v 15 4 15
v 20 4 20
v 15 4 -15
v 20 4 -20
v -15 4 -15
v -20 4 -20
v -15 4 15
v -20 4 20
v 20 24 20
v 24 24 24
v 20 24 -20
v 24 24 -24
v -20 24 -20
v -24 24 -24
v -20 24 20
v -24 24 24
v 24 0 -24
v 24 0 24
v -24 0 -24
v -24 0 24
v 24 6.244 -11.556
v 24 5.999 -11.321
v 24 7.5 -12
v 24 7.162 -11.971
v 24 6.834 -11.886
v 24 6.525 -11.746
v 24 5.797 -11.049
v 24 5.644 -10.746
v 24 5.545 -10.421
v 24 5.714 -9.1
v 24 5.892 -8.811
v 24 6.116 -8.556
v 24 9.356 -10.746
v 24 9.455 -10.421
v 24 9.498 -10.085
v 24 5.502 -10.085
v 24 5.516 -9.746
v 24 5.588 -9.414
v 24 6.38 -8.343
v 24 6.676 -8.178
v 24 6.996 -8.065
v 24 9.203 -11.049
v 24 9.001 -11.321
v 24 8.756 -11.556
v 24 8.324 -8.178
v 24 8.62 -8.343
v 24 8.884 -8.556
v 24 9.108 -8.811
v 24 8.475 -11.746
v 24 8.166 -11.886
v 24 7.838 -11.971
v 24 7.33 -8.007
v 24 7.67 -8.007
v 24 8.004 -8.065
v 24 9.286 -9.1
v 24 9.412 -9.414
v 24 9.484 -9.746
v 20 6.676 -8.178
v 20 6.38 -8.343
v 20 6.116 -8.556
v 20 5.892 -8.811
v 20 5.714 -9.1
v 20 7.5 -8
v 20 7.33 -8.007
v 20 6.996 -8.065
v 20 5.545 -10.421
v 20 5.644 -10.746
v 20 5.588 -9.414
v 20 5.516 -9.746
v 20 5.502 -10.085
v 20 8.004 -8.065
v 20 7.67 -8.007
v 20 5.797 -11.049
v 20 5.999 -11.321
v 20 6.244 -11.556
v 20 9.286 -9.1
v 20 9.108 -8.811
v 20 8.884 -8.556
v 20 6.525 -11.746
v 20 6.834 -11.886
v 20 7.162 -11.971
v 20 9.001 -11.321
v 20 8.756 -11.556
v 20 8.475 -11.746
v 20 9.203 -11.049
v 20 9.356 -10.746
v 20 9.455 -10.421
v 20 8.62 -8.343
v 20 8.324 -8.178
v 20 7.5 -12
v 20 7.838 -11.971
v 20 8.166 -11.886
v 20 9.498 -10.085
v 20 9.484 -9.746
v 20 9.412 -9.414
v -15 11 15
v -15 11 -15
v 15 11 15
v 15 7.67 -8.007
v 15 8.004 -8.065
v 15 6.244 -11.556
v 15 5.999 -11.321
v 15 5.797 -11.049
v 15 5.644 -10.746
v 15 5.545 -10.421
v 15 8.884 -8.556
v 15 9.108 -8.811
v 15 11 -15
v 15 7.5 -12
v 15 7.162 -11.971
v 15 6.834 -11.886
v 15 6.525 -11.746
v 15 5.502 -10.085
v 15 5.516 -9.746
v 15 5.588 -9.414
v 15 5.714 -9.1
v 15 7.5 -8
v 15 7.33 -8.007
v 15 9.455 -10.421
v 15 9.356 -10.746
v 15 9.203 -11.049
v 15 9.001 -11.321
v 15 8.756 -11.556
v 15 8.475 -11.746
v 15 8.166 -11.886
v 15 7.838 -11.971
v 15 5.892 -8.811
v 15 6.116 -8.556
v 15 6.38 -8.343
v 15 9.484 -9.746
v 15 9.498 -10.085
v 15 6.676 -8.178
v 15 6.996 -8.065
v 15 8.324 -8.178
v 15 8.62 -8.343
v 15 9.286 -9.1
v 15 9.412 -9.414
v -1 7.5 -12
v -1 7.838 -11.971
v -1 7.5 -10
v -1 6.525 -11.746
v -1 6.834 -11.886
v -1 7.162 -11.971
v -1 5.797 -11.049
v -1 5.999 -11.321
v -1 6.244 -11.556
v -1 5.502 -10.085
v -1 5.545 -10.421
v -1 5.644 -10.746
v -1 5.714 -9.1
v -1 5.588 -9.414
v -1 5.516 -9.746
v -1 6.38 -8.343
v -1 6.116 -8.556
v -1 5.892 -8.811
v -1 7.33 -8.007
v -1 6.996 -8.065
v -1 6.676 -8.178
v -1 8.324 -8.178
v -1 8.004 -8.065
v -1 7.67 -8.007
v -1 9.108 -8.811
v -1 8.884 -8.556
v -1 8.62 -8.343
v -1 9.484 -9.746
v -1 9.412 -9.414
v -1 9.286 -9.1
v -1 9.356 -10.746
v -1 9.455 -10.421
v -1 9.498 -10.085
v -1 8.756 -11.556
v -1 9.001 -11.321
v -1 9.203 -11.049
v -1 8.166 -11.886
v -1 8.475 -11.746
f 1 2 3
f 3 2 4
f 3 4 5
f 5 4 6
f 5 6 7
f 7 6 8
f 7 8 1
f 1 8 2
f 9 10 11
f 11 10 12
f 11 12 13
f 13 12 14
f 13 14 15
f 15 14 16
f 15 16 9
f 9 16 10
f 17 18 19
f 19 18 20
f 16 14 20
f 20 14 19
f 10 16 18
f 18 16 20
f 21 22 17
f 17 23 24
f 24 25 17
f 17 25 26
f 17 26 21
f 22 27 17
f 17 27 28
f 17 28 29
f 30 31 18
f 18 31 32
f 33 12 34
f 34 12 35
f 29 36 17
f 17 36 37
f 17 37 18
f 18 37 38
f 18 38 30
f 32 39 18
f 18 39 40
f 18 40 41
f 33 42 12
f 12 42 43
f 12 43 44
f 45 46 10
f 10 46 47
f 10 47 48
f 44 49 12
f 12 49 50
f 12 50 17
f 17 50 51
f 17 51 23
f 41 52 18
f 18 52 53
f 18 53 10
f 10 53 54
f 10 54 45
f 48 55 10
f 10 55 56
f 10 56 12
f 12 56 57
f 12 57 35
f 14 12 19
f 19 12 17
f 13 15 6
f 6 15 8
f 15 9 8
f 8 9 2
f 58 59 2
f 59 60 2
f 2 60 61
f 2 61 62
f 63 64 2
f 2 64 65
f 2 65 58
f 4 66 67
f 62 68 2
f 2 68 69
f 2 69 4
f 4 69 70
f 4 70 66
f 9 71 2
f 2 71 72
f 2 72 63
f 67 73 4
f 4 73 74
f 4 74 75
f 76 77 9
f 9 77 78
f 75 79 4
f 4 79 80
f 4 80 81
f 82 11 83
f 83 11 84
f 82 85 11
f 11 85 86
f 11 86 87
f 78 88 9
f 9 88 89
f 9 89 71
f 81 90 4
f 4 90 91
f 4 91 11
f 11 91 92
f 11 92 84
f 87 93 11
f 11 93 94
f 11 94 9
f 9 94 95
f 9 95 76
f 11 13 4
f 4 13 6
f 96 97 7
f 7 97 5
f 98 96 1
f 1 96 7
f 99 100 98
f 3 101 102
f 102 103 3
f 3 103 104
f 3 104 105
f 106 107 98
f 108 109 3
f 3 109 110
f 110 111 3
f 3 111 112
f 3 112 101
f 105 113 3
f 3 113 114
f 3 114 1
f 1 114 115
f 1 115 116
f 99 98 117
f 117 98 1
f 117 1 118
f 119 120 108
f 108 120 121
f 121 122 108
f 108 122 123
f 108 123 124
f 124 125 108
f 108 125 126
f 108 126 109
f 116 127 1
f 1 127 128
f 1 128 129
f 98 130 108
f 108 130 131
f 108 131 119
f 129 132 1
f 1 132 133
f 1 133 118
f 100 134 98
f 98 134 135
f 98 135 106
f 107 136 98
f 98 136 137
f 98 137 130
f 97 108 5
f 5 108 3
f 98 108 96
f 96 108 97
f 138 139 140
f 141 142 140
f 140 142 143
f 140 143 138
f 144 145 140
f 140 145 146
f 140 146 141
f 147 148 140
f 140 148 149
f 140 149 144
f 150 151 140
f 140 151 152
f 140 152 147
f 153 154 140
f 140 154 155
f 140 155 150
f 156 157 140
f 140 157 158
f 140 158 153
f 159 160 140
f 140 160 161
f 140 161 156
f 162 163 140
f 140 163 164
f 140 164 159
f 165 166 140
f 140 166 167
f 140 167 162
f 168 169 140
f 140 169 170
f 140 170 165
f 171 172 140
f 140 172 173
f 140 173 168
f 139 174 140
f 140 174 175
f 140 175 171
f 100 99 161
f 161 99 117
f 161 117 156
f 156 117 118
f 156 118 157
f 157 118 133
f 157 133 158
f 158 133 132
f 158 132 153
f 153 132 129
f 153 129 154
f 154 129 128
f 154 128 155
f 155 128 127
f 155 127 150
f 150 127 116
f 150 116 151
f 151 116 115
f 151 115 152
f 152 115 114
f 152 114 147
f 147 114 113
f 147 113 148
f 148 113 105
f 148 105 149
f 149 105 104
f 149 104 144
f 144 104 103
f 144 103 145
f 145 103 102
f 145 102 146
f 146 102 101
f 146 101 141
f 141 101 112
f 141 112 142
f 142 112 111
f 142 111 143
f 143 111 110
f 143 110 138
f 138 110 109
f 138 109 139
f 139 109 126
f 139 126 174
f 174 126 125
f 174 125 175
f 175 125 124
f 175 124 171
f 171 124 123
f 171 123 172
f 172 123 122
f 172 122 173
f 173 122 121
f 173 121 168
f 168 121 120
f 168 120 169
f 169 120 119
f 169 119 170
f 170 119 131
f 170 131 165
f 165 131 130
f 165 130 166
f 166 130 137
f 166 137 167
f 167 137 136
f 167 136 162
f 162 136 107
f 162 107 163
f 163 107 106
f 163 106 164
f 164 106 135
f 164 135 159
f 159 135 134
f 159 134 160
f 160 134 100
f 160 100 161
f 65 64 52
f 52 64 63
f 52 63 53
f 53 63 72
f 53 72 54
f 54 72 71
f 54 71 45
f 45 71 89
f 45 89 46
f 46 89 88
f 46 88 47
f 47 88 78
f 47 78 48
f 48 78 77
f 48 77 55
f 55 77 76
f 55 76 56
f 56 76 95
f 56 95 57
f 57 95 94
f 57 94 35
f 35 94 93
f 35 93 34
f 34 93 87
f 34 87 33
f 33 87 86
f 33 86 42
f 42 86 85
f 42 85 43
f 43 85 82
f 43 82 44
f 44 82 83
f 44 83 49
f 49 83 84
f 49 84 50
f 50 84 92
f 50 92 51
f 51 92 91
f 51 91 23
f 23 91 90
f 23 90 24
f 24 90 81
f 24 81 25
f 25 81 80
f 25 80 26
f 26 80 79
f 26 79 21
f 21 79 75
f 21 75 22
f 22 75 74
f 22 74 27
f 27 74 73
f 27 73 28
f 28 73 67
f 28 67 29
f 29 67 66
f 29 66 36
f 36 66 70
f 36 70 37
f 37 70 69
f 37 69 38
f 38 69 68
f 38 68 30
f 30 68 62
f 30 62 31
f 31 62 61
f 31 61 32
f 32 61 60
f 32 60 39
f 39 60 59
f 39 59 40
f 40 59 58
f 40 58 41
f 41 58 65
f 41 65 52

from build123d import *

# Parameters (mm, degrees)
SKETCH1_W           = 48
SKETCH1_H           = 48
SKETCH1_W_2         = 40
SKETCH1_H_2         = 40
BOSS_EXTRUDE1_DEPTH = 24
SKETCH1_5_W         = 40
SKETCH1_5_H         = 40
BOSS_EXTRUDE2_DEPTH = 4
SKETCH3_W           = 30
SKETCH3_H           = 30
BOSS_EXTRUDE3_DEPTH = 7
SKETCH4_R           = 2
CUT_EXTRUDE1_DEPTH  = 25


with BuildPart() as part:
    # Sketch1 → Boss-Extrude1 (new body)
    with BuildSketch(Plane(origin=(0, 0, 0), x_dir=(1, 0, 0), z_dir=(0, 1, 0))):
        Rectangle(SKETCH1_W, SKETCH1_H)
        Rectangle(SKETCH1_W_2, SKETCH1_H_2, mode=Mode.SUBTRACT)
    extrude(amount=BOSS_EXTRUDE1_DEPTH)

    # Sketch1<5> → Boss-Extrude2 (add)
    with BuildSketch(Plane(origin=(0, 0, 0), x_dir=(1, 0, 0), z_dir=(0, 1, 0))):
        Rectangle(SKETCH1_5_W, SKETCH1_5_H)
    extrude(amount=BOSS_EXTRUDE2_DEPTH)

    # Sketch3 → Boss-Extrude3 (add)
    with BuildSketch(Plane(origin=(0, 4, 0), x_dir=(1, 0, 0), z_dir=(0, 1, 0))):
        Rectangle(SKETCH3_W, SKETCH3_H)
    extrude(amount=BOSS_EXTRUDE3_DEPTH)

    # Sketch4 → Cut-Extrude1 (cut)
    with BuildSketch(Plane(origin=(24, 0, 0), x_dir=(0, 0, -1), z_dir=(1, 0, 0))):
        with Locations((10, 7.5)):
            Circle(SKETCH4_R)
    extrude(amount=-CUT_EXTRUDE1_DEPTH, mode=Mode.SUBTRACT)


solid = part.part
